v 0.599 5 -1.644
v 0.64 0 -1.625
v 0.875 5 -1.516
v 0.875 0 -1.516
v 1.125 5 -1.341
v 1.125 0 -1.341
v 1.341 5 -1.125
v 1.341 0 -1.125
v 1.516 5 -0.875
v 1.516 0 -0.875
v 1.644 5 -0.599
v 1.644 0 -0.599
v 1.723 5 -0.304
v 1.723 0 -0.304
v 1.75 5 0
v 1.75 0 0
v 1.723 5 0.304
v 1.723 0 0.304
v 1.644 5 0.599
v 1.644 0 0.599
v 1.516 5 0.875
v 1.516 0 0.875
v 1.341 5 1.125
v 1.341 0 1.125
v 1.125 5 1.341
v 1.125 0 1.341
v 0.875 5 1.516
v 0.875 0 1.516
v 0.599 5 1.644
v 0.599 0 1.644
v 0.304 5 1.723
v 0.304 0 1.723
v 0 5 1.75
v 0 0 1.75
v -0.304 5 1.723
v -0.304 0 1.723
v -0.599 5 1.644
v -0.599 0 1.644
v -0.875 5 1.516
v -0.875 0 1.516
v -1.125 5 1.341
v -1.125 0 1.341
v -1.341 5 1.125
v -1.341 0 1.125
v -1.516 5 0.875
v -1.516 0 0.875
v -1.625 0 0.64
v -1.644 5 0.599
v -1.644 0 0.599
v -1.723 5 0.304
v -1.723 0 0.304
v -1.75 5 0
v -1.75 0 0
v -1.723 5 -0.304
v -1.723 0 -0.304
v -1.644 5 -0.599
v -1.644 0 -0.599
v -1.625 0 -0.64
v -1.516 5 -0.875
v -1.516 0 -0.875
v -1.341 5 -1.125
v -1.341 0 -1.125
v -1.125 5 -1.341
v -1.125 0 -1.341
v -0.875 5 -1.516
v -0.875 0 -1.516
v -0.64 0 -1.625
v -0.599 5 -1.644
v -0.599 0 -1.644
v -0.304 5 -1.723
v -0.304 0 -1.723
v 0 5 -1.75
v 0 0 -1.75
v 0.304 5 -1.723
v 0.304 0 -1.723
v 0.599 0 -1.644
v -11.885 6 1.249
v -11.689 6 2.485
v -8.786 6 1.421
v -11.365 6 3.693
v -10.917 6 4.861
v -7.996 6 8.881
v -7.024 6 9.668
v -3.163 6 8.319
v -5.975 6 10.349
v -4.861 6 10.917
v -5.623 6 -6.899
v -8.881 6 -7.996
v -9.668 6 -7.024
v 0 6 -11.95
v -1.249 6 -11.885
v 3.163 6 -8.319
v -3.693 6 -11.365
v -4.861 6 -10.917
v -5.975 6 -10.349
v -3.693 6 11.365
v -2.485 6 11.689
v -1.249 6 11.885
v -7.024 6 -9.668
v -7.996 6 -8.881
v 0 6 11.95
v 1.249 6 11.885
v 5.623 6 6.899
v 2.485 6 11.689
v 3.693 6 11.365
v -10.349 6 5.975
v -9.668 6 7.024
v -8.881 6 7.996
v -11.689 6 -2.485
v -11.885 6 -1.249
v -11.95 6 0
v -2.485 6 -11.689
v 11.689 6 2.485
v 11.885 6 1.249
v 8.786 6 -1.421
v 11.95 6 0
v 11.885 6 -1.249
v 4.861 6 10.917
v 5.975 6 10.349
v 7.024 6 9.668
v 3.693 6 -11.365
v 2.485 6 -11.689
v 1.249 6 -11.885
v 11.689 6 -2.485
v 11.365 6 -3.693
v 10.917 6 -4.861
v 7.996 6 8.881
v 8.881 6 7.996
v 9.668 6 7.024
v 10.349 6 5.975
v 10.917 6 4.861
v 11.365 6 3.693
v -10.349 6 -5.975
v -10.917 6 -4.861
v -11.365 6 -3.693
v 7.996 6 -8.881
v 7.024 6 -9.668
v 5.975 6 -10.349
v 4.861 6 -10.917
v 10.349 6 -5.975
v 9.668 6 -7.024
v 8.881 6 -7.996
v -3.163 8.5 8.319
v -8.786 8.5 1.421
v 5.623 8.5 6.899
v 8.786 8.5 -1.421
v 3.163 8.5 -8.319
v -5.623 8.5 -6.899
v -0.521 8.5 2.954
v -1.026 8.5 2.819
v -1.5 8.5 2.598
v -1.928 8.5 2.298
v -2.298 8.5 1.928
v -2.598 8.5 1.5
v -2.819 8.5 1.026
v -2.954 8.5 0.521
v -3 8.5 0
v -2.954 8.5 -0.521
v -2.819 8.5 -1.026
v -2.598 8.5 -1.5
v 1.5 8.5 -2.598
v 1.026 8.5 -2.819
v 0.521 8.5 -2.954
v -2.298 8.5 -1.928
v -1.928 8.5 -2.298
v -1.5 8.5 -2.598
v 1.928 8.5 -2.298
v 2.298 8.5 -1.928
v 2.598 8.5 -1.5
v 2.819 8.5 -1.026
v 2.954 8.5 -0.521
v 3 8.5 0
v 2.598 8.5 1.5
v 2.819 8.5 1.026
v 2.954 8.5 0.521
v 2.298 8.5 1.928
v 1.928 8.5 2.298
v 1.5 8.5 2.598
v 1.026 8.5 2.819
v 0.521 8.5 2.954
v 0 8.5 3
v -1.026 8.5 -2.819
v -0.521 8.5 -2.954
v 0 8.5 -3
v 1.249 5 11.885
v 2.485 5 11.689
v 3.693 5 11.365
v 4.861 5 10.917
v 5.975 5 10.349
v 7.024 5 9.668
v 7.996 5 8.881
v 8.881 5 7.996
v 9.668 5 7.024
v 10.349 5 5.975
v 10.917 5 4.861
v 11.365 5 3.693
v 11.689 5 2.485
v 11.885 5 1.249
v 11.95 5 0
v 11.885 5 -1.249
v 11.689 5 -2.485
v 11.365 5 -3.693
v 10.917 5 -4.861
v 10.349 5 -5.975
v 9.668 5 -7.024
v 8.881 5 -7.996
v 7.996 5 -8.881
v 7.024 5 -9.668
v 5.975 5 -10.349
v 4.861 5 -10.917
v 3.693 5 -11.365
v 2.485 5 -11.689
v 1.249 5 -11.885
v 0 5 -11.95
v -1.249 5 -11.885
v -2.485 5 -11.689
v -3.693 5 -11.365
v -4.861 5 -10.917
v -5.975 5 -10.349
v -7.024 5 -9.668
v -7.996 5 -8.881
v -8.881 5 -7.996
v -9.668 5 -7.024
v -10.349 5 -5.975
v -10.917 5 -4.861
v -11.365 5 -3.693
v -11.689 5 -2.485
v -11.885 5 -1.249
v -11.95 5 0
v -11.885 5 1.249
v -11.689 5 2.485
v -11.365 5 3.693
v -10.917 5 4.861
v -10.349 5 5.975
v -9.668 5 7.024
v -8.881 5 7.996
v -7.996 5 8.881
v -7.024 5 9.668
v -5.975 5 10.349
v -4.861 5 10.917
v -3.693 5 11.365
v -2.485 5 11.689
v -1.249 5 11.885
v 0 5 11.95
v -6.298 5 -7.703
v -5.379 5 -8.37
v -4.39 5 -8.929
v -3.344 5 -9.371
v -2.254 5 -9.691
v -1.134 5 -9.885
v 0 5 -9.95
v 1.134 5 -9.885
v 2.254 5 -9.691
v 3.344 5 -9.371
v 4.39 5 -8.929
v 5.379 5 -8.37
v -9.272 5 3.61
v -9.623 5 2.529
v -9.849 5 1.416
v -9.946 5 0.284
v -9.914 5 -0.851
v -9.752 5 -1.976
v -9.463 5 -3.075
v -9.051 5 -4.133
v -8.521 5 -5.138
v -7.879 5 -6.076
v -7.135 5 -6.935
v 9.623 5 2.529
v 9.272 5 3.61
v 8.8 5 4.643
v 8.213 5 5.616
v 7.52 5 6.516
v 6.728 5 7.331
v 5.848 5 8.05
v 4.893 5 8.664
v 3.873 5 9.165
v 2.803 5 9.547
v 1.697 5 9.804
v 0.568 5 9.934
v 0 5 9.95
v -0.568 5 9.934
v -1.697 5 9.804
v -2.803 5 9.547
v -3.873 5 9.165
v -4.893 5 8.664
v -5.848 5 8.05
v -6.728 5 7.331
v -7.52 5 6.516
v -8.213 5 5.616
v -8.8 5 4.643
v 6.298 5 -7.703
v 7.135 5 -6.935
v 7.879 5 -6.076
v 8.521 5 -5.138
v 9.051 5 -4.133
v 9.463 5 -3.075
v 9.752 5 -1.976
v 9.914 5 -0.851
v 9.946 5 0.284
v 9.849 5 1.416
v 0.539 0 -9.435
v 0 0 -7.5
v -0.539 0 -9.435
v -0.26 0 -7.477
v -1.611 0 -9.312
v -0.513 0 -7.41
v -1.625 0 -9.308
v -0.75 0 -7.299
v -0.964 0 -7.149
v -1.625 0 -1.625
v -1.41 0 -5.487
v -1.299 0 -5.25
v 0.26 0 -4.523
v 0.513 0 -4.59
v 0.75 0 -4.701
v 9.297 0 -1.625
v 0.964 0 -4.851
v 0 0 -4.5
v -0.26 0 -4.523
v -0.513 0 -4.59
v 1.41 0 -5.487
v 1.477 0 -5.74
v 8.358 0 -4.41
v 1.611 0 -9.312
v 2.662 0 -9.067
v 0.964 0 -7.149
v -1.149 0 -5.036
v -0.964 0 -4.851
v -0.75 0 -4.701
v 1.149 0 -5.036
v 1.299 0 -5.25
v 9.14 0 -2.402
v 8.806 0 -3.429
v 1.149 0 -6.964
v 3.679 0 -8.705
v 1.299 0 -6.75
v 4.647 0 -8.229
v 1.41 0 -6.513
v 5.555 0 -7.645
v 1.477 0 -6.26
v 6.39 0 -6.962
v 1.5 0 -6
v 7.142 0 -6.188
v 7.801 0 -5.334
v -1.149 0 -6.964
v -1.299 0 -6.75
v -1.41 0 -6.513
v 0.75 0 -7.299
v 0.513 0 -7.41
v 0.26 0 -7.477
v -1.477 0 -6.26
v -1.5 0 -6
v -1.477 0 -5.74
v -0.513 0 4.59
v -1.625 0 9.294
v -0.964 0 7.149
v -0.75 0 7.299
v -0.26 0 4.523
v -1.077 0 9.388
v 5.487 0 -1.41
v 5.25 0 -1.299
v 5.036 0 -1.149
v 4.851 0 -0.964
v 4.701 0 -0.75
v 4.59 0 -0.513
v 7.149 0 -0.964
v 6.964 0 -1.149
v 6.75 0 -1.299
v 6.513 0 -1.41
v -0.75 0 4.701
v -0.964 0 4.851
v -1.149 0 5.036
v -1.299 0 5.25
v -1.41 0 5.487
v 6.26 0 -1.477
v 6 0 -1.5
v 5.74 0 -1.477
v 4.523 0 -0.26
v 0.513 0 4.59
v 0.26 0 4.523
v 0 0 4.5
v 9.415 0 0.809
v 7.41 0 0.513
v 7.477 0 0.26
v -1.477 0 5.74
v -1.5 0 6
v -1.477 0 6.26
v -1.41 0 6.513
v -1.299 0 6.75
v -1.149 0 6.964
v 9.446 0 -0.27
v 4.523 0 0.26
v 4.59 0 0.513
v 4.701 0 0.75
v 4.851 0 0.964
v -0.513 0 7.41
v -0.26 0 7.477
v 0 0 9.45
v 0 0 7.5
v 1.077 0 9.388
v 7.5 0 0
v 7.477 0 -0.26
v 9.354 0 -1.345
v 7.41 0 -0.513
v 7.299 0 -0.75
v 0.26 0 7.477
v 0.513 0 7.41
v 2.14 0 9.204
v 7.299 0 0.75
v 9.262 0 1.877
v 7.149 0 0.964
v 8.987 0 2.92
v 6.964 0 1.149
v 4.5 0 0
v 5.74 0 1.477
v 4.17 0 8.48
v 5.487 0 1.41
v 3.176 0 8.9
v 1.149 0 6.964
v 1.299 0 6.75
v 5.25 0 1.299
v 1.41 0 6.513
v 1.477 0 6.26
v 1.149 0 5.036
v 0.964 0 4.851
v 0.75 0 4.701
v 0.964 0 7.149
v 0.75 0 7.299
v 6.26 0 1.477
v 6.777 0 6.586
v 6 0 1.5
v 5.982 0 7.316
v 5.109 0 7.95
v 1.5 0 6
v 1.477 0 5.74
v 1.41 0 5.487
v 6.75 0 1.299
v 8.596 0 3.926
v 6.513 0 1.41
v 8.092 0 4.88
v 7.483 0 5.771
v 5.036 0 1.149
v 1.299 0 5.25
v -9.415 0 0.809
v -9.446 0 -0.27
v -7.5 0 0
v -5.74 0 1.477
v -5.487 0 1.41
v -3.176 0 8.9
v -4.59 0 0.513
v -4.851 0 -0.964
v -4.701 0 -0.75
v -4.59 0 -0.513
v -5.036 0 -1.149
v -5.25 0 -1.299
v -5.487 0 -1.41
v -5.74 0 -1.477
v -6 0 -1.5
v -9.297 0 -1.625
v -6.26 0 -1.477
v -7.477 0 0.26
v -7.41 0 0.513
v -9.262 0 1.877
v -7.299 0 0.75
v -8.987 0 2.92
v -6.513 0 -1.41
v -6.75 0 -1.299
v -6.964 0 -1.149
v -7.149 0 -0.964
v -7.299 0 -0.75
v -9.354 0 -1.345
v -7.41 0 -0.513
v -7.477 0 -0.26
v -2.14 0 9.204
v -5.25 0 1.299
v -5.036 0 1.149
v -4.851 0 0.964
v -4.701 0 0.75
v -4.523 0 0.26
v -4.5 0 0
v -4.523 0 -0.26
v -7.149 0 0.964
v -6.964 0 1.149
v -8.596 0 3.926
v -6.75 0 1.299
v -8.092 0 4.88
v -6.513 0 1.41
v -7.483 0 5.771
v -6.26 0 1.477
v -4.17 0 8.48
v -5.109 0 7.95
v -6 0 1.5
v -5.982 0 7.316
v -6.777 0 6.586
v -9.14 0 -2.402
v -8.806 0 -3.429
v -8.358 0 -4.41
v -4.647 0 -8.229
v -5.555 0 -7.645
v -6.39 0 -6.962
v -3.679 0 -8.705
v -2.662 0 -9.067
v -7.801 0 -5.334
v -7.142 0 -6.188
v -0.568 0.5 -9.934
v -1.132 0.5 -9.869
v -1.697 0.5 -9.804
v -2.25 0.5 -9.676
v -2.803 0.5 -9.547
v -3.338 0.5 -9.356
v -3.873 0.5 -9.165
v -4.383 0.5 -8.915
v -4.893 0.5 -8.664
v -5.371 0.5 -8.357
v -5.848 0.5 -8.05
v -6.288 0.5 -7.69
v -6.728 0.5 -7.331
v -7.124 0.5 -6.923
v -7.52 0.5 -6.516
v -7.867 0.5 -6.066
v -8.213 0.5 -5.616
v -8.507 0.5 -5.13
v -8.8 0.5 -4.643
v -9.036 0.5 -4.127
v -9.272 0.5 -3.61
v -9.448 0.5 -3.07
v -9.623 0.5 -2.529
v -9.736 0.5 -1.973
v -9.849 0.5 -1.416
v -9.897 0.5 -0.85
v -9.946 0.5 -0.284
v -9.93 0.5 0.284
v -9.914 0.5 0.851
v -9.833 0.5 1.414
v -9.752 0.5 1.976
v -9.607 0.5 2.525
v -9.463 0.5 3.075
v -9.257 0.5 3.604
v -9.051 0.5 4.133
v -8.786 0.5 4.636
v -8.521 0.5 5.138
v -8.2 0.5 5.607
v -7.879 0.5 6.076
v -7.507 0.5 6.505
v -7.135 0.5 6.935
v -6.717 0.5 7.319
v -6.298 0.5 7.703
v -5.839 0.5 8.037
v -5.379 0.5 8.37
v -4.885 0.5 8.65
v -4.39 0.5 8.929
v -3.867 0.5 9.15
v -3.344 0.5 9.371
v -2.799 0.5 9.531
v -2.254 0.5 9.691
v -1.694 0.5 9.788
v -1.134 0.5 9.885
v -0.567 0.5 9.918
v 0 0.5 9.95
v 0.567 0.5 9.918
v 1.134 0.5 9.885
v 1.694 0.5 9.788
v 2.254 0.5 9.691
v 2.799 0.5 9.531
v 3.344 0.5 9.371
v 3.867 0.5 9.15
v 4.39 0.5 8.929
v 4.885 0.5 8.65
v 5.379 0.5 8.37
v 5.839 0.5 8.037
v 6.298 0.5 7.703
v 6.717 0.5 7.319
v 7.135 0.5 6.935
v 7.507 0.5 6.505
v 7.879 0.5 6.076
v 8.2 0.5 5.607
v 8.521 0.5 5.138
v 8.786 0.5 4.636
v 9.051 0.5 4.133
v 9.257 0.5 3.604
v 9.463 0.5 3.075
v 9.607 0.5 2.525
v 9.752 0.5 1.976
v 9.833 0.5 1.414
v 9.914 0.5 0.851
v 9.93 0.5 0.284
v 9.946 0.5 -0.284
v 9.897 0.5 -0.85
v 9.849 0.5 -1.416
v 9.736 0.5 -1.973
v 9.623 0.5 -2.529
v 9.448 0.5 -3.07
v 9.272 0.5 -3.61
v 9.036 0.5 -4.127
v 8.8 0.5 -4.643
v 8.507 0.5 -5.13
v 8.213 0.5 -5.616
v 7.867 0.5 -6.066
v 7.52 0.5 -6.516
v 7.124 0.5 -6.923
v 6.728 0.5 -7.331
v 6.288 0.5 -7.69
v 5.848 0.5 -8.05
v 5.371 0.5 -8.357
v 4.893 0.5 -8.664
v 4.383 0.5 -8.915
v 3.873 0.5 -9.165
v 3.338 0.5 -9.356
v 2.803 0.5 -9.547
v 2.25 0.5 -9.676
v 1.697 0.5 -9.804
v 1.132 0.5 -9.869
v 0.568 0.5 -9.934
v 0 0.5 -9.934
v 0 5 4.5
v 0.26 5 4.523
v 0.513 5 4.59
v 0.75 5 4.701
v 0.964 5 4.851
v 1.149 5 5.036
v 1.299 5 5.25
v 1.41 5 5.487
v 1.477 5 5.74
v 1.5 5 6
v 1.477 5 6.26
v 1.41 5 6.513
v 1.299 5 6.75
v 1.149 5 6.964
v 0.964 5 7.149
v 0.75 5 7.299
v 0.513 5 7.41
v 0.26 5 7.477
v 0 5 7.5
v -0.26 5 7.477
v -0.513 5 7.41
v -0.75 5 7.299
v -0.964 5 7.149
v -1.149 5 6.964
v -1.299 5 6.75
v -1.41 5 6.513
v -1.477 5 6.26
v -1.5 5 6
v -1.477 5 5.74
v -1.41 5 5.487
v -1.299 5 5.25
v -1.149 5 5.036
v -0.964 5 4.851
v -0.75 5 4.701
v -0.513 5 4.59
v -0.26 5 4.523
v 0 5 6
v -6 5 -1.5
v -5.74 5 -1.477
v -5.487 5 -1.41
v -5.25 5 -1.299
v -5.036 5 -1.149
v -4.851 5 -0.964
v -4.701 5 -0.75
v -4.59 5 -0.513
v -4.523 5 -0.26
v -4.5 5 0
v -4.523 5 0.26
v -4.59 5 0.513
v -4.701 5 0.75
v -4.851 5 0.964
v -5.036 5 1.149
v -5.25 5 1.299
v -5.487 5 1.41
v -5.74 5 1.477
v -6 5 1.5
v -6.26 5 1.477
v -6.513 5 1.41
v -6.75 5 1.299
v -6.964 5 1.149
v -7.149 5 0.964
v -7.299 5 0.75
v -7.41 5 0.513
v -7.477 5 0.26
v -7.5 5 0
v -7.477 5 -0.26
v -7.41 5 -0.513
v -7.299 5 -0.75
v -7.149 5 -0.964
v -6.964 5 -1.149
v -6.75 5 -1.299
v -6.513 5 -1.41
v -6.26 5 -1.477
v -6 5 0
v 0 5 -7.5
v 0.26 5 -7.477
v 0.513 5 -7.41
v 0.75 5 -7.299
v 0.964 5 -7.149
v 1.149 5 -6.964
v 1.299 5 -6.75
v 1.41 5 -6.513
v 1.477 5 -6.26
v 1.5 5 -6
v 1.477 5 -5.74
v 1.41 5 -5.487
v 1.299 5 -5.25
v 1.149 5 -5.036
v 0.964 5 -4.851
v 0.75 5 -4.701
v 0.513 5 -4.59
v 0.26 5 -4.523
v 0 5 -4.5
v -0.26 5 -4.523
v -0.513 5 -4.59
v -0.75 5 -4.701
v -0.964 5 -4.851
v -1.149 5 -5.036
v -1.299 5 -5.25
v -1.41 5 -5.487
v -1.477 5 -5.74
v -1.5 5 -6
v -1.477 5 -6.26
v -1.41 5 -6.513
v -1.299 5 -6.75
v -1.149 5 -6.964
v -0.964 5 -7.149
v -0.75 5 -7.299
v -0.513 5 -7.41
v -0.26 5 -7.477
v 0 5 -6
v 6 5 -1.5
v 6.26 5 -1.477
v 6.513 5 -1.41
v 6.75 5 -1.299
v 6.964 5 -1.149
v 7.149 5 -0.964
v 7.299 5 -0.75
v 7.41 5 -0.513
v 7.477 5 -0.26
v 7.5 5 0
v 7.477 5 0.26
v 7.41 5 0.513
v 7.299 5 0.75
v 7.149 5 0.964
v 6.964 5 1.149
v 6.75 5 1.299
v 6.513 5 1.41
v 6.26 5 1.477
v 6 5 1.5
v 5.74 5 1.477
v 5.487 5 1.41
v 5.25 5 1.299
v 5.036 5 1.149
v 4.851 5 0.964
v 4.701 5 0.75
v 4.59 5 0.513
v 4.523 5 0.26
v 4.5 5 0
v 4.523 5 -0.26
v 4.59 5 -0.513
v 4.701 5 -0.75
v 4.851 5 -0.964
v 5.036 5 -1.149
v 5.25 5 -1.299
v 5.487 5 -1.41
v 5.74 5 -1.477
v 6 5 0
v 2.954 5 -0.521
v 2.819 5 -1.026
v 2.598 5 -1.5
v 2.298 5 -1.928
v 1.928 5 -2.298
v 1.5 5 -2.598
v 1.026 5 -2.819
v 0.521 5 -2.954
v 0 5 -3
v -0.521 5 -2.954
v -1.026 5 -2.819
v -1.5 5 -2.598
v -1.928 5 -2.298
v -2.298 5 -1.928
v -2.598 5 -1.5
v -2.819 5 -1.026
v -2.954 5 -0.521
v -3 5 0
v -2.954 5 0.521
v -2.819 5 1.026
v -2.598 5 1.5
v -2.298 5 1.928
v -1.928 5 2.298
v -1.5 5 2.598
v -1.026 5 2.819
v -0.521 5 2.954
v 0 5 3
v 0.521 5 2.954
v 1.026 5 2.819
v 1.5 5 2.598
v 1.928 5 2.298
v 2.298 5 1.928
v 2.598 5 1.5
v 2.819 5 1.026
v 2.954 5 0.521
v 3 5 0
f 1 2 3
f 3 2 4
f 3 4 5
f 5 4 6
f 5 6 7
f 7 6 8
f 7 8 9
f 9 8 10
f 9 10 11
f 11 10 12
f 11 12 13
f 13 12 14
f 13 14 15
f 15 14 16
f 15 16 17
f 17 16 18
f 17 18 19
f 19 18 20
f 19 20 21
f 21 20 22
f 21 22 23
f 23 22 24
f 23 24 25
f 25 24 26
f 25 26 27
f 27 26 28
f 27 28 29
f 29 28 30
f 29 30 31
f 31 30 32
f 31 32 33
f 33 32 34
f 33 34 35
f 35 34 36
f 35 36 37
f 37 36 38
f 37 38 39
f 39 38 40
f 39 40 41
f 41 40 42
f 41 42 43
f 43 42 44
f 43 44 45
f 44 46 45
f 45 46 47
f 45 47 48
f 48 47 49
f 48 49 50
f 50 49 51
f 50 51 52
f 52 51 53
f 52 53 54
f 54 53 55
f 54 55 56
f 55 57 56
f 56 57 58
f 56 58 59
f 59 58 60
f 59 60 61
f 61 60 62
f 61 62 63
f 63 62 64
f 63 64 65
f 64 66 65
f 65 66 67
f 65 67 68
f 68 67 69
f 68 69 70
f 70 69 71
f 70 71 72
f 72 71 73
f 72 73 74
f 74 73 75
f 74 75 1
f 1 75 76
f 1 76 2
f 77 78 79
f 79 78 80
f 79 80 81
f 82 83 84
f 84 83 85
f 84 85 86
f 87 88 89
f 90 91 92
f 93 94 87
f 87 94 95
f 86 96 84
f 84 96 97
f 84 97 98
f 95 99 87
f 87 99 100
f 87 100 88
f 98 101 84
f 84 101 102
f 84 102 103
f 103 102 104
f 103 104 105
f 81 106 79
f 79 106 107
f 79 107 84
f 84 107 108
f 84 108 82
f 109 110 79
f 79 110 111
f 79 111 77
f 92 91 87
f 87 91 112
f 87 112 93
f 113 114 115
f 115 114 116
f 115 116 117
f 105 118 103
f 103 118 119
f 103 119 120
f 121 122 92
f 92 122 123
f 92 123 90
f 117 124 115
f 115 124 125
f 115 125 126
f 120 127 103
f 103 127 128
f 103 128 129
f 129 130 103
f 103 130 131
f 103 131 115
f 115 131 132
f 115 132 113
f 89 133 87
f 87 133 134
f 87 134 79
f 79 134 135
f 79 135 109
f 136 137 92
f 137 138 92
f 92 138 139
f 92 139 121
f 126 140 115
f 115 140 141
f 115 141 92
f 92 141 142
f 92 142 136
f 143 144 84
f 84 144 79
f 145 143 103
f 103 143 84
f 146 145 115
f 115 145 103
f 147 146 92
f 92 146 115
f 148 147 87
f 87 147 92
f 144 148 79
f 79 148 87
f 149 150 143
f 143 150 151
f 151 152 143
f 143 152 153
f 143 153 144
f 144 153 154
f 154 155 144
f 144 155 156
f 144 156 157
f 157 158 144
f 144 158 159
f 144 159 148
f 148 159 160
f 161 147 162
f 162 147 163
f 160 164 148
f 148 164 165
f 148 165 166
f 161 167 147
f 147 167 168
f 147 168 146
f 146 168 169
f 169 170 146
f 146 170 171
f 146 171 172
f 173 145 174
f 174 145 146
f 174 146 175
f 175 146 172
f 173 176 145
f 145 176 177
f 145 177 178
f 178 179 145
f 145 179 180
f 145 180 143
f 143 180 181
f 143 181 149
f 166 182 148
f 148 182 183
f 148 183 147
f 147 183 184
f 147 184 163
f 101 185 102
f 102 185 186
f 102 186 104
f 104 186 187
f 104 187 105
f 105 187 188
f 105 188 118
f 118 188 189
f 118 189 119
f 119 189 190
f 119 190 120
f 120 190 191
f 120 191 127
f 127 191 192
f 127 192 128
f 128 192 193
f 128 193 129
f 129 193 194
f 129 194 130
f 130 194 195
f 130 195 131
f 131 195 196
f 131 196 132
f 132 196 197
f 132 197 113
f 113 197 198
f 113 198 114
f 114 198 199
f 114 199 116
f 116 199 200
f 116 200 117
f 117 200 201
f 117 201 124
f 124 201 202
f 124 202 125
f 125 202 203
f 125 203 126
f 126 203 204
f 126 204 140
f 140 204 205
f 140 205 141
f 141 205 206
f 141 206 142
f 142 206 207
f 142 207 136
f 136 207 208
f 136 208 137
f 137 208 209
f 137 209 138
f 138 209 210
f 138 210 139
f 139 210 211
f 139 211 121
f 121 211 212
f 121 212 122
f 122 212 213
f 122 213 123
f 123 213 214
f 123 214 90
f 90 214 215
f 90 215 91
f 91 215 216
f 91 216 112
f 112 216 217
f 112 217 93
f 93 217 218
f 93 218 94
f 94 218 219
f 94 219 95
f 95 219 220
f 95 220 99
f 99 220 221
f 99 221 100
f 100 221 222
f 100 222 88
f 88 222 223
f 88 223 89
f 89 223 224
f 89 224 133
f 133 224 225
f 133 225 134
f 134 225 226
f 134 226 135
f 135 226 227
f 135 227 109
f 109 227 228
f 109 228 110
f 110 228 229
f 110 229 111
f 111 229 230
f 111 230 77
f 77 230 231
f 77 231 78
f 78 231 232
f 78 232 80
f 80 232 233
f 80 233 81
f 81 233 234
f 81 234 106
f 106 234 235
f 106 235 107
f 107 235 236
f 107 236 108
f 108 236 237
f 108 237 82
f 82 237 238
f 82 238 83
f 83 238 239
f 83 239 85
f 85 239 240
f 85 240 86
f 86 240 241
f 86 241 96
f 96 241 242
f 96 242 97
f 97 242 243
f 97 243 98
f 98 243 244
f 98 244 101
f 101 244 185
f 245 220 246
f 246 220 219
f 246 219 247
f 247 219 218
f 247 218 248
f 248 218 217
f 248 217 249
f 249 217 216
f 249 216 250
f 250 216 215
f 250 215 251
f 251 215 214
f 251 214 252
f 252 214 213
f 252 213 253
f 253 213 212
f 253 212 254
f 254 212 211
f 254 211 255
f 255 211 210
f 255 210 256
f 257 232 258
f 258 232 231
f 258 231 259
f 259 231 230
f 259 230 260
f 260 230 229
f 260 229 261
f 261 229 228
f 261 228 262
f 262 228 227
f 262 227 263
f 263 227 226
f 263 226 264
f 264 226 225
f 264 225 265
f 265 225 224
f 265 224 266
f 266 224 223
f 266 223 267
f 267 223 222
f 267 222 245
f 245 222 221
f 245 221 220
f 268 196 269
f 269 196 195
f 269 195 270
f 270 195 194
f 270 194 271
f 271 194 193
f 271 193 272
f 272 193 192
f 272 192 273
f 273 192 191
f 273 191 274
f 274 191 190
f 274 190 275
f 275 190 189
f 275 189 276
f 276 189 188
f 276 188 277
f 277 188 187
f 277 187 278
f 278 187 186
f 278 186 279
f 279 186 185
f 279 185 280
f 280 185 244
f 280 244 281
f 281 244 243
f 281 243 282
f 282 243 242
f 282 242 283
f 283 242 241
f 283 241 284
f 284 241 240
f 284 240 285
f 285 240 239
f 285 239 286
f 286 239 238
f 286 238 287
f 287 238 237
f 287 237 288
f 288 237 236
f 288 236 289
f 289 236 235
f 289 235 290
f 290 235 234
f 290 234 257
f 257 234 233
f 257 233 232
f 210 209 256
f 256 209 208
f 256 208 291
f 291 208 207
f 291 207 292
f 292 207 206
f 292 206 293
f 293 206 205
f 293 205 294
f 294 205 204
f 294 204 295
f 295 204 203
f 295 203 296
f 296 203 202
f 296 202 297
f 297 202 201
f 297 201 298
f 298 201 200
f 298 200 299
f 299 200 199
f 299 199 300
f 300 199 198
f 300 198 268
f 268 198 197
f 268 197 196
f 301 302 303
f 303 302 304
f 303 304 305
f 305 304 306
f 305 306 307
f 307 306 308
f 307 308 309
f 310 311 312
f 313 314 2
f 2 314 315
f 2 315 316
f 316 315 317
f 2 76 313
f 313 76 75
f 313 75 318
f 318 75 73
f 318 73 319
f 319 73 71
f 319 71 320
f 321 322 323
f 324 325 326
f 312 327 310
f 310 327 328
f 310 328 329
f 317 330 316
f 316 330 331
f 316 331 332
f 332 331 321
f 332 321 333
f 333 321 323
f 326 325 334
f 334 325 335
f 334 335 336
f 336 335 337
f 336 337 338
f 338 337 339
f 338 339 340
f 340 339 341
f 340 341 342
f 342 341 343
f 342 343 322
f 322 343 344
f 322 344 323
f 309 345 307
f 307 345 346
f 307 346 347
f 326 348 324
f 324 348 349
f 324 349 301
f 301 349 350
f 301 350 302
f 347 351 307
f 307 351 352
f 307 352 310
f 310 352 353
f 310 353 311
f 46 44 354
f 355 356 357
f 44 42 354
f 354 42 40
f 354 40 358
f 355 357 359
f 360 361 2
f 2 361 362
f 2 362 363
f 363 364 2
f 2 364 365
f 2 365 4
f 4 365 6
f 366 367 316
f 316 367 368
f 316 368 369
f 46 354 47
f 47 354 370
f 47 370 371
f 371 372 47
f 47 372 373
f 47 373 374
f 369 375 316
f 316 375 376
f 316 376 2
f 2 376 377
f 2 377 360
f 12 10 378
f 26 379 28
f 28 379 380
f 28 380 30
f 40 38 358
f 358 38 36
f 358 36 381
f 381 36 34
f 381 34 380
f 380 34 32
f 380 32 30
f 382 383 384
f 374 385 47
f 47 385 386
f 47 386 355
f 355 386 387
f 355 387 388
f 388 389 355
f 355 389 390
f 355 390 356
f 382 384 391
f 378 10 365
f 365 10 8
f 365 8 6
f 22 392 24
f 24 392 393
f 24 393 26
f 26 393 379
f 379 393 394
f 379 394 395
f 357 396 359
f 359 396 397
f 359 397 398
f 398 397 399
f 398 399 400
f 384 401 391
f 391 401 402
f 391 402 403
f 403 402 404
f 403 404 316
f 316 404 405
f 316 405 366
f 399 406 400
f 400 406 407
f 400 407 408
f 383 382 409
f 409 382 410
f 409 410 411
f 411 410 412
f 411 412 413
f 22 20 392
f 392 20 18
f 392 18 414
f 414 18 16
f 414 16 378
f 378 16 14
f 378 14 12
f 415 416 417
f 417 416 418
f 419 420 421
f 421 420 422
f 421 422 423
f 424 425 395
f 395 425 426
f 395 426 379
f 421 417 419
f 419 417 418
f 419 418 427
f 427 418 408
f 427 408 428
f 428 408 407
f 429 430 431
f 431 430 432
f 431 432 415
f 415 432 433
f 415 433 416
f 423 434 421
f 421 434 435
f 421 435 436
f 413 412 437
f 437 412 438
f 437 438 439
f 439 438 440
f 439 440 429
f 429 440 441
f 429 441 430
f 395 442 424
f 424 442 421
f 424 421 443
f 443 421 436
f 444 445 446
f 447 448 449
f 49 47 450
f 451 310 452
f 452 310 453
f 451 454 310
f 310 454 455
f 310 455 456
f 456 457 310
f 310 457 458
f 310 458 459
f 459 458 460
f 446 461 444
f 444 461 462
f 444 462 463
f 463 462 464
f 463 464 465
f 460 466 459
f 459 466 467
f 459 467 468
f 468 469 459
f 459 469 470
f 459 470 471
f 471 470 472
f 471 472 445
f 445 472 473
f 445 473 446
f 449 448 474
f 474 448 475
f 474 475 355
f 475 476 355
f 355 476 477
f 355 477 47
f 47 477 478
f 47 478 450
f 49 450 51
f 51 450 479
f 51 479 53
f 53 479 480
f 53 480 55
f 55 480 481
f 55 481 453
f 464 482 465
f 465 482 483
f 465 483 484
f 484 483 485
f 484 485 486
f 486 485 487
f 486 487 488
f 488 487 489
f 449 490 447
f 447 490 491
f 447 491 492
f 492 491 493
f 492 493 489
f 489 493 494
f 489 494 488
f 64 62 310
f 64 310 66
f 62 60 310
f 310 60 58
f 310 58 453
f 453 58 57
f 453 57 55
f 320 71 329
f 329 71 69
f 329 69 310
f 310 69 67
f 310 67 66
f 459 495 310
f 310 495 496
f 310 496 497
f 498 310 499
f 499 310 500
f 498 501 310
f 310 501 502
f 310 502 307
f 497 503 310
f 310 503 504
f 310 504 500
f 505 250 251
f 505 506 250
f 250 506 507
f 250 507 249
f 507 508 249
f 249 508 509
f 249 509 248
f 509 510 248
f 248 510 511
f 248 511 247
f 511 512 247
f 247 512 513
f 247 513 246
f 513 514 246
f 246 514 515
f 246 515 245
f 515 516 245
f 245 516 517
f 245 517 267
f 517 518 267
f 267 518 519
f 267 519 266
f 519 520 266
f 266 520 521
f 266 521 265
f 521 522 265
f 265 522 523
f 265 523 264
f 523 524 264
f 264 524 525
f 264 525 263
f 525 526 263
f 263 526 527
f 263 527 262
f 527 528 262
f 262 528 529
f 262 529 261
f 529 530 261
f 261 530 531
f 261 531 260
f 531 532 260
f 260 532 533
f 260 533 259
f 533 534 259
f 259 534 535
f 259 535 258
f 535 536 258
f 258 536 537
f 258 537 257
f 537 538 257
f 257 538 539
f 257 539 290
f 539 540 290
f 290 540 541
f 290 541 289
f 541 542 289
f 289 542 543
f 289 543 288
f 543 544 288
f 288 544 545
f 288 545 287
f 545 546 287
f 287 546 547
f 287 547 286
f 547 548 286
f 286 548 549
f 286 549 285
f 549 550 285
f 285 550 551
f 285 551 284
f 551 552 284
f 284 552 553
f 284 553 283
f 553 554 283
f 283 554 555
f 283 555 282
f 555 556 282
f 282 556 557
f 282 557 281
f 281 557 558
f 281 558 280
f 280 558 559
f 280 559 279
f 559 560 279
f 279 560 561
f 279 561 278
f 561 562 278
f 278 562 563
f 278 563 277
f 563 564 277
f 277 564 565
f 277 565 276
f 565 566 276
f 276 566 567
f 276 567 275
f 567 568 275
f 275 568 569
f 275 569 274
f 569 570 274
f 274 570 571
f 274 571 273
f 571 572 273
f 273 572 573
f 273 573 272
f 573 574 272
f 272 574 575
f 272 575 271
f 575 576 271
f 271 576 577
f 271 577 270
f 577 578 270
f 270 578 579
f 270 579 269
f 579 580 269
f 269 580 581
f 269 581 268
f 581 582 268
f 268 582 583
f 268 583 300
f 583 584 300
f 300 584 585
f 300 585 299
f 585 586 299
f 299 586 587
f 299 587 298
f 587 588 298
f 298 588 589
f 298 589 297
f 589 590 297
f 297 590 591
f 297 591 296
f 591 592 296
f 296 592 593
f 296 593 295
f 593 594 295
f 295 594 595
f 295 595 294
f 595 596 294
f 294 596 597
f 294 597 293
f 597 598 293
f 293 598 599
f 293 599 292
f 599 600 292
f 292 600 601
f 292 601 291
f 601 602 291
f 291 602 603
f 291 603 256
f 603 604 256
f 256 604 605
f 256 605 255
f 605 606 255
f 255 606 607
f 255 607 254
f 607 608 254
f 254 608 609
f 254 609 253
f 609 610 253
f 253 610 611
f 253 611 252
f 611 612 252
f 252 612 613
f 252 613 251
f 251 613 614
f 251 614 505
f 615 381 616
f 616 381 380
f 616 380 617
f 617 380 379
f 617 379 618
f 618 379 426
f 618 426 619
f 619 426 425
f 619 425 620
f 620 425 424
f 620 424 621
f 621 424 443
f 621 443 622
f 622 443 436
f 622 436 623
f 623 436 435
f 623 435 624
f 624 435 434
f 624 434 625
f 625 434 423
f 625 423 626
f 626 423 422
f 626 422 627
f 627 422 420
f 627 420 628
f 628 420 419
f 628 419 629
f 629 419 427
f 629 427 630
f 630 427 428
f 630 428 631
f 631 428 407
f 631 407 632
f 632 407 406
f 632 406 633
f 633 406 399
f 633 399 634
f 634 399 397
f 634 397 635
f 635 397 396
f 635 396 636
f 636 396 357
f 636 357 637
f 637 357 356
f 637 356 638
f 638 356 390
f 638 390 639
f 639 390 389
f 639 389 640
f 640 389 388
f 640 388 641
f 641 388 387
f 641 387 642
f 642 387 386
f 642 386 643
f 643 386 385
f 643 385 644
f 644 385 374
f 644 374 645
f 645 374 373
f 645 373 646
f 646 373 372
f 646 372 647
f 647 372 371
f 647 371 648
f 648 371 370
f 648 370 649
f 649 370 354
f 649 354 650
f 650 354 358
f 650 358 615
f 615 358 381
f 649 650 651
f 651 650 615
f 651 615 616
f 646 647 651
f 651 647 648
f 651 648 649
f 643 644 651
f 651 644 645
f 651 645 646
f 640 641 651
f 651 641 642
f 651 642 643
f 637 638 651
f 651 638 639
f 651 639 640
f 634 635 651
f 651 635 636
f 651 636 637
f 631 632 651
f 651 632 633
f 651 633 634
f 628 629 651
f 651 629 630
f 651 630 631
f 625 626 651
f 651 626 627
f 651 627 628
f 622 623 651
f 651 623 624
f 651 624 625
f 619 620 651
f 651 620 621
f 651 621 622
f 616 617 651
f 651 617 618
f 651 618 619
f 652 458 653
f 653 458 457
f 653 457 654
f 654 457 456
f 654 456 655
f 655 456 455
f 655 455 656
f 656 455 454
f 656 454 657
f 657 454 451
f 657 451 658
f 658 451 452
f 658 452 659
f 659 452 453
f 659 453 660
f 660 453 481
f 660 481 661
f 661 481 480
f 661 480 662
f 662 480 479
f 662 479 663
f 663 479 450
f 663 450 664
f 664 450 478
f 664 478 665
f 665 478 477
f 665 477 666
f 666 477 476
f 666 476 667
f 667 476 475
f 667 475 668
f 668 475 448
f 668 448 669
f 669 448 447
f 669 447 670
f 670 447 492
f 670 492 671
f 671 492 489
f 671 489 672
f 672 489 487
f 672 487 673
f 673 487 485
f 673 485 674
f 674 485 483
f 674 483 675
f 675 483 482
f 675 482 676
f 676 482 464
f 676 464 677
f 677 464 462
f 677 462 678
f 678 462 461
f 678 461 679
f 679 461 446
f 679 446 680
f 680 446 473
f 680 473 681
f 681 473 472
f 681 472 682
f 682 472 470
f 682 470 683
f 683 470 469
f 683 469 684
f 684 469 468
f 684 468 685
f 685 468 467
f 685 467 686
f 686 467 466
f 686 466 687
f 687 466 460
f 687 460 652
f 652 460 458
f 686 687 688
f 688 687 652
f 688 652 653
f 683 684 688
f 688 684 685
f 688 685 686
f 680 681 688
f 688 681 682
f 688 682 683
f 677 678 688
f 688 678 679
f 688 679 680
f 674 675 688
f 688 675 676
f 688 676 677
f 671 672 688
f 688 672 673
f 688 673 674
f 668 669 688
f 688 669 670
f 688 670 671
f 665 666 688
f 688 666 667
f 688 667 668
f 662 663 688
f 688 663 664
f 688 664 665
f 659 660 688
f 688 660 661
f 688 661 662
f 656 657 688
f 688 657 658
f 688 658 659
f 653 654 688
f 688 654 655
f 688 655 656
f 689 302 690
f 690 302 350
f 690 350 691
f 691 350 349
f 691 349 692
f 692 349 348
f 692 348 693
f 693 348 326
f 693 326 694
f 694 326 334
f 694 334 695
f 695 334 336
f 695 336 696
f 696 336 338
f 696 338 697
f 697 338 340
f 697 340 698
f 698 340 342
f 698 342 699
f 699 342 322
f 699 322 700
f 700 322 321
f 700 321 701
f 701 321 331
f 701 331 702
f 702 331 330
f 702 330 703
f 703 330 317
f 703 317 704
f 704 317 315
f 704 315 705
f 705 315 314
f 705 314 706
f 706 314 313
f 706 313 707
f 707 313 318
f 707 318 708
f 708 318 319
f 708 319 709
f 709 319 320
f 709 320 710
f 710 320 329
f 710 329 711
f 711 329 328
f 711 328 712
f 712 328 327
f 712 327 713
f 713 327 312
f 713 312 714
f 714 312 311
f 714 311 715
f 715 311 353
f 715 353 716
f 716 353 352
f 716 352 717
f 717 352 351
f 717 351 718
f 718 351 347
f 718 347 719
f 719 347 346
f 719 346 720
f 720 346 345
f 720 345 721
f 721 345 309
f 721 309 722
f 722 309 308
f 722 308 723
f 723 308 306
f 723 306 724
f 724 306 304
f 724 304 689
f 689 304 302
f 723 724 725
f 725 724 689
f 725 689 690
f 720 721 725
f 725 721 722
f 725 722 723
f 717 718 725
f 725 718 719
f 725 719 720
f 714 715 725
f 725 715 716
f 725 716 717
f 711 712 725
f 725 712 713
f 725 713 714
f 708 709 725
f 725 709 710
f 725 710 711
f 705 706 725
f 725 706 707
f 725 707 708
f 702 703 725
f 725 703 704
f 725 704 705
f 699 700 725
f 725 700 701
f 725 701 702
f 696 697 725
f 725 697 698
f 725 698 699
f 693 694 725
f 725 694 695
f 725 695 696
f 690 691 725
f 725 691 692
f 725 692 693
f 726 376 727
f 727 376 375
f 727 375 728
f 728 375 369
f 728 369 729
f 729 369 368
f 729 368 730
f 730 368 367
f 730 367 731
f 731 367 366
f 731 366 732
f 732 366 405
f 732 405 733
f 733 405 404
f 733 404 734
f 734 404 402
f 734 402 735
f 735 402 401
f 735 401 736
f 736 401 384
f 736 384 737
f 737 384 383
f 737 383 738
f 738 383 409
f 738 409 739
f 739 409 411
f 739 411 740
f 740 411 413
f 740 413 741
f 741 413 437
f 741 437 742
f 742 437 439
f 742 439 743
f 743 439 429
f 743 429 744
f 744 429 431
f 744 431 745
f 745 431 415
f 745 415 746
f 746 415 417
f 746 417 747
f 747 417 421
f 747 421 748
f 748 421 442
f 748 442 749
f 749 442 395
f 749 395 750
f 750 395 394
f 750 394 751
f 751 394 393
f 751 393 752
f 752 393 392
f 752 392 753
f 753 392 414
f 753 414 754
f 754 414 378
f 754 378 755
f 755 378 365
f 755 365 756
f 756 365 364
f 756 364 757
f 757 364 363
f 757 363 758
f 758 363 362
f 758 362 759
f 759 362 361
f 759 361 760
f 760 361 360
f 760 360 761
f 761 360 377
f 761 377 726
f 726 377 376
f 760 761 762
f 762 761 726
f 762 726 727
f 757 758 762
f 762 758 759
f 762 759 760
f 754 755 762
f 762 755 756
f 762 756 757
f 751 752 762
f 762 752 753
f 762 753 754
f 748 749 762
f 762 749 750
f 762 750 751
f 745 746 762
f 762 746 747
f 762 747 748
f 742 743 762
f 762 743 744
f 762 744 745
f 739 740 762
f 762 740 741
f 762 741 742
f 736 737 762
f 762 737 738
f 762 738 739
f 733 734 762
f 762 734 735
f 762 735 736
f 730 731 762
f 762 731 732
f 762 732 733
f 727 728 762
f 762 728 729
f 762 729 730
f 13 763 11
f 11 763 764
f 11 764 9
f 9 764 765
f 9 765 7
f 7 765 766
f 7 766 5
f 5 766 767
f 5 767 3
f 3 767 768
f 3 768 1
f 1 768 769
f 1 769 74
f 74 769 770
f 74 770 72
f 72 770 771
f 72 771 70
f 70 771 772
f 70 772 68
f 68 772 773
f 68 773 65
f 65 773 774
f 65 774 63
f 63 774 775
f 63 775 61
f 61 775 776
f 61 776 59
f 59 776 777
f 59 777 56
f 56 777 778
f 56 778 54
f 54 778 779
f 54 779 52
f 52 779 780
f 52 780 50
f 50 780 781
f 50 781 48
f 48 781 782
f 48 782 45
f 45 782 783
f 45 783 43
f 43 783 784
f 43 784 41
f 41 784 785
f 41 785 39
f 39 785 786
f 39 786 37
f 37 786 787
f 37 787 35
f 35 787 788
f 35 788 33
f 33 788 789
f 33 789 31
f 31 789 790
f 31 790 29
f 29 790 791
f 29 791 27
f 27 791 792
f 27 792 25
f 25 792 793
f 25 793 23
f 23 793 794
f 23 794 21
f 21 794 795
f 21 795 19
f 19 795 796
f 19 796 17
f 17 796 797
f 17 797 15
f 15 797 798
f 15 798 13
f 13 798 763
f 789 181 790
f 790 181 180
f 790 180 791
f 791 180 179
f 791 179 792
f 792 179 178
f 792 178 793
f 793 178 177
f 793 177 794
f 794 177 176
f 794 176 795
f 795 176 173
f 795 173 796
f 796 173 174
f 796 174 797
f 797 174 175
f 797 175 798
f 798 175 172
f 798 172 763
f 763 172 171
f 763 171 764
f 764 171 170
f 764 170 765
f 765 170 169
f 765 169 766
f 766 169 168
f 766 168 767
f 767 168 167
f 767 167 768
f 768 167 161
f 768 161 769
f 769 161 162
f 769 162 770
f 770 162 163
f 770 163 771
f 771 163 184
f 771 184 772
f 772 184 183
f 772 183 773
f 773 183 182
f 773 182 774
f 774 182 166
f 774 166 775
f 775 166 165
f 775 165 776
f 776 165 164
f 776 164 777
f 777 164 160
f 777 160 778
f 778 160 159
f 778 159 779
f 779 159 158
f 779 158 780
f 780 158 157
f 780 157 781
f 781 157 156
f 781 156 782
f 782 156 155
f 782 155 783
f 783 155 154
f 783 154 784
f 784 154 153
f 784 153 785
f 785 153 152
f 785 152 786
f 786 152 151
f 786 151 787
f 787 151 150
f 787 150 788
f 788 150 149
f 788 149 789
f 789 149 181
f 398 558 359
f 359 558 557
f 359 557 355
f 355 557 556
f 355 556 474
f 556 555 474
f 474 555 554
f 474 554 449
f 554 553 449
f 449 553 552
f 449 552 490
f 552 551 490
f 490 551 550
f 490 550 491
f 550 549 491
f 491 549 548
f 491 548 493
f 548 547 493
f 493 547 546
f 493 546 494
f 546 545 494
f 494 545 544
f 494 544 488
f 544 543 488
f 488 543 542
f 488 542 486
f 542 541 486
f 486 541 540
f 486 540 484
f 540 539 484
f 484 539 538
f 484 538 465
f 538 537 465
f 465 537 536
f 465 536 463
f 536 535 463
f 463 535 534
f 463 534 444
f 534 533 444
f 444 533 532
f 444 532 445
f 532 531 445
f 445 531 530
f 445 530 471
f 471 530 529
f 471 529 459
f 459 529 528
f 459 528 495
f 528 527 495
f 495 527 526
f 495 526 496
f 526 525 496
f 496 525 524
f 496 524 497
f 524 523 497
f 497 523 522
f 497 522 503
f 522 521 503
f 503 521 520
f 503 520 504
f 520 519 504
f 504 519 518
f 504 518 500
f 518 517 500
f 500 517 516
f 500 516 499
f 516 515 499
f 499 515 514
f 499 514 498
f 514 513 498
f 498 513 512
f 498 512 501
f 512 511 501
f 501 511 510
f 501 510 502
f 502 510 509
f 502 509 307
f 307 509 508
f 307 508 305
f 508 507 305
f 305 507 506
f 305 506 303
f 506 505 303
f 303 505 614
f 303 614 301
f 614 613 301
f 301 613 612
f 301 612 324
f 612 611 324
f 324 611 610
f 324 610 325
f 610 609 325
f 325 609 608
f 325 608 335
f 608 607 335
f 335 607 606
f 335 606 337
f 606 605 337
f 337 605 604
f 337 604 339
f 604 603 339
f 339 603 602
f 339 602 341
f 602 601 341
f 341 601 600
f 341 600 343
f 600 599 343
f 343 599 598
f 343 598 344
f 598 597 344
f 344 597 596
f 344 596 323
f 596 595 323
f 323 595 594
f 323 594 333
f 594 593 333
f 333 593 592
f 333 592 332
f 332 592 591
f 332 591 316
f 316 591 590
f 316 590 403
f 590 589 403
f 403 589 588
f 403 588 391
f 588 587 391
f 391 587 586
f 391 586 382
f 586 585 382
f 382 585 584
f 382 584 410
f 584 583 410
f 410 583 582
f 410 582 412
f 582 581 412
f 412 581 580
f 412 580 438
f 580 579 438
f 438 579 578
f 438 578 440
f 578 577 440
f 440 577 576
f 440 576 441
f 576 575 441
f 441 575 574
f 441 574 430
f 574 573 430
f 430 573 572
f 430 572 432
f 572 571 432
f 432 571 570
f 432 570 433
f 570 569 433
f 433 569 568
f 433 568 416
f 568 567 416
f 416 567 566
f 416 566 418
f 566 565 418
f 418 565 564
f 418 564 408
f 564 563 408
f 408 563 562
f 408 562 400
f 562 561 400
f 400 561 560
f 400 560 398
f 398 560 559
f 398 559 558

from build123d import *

# Parameters (mm, degrees)
ESQUISSE1_R             = 9.95
BOSS_EXTRU_1_DEPTH      = 6
BOSS_EXTRU_2_DEPTH      = 2.5
ESQUISSE3_R             = 11.95
ESQUISSE3_R_2           = 9.95
BOSS_EXTRU_3_DEPTH      = 1
ESQUISSE4_R             = 1.5
ENL_V_MAT_EXTRU_1_DEPTH = 5
ESQUISSE5_R             = 1.75
ENL_V_MAT_EXTRU_2_DEPTH = 9.5
ESQUISSE6_R             = 3
ENL_V_MAT_EXTRU_3_DEPTH = 3.5
CHANFREIN1_SIZE         = 0.5


with BuildPart() as part:
    # Esquisse1 → Boss.-Extru.1 (new body)
    with BuildSketch(Plane(origin=(0, 0, 0), x_dir=(1, 0, 0), z_dir=(0, 1, 0))):
        Circle(ESQUISSE1_R)
    extrude(amount=BOSS_EXTRU_1_DEPTH)

    # Esquisse2 → Boss.-Extru.2 (add)
    with BuildSketch(Plane(origin=(0, 6, 0), x_dir=(1, 0, 0), z_dir=(0, 1, 0))):
        Polygon((-3.162738548, -8.319079569), (5.623164969, -6.898551713), (8.785903517, 1.420527856), (3.162738548, 8.319079569), (-5.623164969, 6.898551713), (-8.785903517, -1.420527856), align=None)
    extrude(amount=BOSS_EXTRU_2_DEPTH)

    # Esquisse3 → Boss.-Extru.3 (add)
    with BuildSketch(Plane(origin=(0, 6, 0), x_dir=(1, 0, 0), z_dir=(0, 1, 0))):
        Circle(ESQUISSE3_R)
        Circle(ESQUISSE3_R_2, mode=Mode.SUBTRACT)
    extrude(amount=-BOSS_EXTRU_3_DEPTH)

    # Esquisse4 → Enlèv. mat.-Extru.1 (cut)
    with BuildSketch(Plane.XZ):
        with Locations((0, 6)):
            Circle(ESQUISSE4_R)
        with Locations((6, 0)):
            Circle(ESQUISSE4_R)
        with Locations((0, -6)):
            Circle(ESQUISSE4_R)
        with Locations((-6, 0)):
            Circle(ESQUISSE4_R)
    extrude(amount=-ENL_V_MAT_EXTRU_1_DEPTH, mode=Mode.SUBTRACT)

    # Esquisse5 → Enlèv. mat.-Extru.2 (cut, through all)
    with BuildSketch(Plane.XZ):
        Circle(ESQUISSE5_R)
    extrude(amount=-ENL_V_MAT_EXTRU_2_DEPTH, mode=Mode.SUBTRACT)

    # Esquisse6 → Enlèv. mat.-Extru.3 (cut)
    with BuildSketch(Plane(origin=(0, 8.5, 0), x_dir=(1, 0, 0), z_dir=(0, 1, 0))):
        Circle(ESQUISSE6_R)
    extrude(amount=-ENL_V_MAT_EXTRU_3_DEPTH, mode=Mode.SUBTRACT)

    # Chanfrein1
    chanfrein1_edges = [part.edges().sort_by_distance(p)[0] for p in [
        (-9.95, 0, 0),
    ]]
    chamfer(chanfrein1_edges, length=CHANFREIN1_SIZE)


solid = part.part
